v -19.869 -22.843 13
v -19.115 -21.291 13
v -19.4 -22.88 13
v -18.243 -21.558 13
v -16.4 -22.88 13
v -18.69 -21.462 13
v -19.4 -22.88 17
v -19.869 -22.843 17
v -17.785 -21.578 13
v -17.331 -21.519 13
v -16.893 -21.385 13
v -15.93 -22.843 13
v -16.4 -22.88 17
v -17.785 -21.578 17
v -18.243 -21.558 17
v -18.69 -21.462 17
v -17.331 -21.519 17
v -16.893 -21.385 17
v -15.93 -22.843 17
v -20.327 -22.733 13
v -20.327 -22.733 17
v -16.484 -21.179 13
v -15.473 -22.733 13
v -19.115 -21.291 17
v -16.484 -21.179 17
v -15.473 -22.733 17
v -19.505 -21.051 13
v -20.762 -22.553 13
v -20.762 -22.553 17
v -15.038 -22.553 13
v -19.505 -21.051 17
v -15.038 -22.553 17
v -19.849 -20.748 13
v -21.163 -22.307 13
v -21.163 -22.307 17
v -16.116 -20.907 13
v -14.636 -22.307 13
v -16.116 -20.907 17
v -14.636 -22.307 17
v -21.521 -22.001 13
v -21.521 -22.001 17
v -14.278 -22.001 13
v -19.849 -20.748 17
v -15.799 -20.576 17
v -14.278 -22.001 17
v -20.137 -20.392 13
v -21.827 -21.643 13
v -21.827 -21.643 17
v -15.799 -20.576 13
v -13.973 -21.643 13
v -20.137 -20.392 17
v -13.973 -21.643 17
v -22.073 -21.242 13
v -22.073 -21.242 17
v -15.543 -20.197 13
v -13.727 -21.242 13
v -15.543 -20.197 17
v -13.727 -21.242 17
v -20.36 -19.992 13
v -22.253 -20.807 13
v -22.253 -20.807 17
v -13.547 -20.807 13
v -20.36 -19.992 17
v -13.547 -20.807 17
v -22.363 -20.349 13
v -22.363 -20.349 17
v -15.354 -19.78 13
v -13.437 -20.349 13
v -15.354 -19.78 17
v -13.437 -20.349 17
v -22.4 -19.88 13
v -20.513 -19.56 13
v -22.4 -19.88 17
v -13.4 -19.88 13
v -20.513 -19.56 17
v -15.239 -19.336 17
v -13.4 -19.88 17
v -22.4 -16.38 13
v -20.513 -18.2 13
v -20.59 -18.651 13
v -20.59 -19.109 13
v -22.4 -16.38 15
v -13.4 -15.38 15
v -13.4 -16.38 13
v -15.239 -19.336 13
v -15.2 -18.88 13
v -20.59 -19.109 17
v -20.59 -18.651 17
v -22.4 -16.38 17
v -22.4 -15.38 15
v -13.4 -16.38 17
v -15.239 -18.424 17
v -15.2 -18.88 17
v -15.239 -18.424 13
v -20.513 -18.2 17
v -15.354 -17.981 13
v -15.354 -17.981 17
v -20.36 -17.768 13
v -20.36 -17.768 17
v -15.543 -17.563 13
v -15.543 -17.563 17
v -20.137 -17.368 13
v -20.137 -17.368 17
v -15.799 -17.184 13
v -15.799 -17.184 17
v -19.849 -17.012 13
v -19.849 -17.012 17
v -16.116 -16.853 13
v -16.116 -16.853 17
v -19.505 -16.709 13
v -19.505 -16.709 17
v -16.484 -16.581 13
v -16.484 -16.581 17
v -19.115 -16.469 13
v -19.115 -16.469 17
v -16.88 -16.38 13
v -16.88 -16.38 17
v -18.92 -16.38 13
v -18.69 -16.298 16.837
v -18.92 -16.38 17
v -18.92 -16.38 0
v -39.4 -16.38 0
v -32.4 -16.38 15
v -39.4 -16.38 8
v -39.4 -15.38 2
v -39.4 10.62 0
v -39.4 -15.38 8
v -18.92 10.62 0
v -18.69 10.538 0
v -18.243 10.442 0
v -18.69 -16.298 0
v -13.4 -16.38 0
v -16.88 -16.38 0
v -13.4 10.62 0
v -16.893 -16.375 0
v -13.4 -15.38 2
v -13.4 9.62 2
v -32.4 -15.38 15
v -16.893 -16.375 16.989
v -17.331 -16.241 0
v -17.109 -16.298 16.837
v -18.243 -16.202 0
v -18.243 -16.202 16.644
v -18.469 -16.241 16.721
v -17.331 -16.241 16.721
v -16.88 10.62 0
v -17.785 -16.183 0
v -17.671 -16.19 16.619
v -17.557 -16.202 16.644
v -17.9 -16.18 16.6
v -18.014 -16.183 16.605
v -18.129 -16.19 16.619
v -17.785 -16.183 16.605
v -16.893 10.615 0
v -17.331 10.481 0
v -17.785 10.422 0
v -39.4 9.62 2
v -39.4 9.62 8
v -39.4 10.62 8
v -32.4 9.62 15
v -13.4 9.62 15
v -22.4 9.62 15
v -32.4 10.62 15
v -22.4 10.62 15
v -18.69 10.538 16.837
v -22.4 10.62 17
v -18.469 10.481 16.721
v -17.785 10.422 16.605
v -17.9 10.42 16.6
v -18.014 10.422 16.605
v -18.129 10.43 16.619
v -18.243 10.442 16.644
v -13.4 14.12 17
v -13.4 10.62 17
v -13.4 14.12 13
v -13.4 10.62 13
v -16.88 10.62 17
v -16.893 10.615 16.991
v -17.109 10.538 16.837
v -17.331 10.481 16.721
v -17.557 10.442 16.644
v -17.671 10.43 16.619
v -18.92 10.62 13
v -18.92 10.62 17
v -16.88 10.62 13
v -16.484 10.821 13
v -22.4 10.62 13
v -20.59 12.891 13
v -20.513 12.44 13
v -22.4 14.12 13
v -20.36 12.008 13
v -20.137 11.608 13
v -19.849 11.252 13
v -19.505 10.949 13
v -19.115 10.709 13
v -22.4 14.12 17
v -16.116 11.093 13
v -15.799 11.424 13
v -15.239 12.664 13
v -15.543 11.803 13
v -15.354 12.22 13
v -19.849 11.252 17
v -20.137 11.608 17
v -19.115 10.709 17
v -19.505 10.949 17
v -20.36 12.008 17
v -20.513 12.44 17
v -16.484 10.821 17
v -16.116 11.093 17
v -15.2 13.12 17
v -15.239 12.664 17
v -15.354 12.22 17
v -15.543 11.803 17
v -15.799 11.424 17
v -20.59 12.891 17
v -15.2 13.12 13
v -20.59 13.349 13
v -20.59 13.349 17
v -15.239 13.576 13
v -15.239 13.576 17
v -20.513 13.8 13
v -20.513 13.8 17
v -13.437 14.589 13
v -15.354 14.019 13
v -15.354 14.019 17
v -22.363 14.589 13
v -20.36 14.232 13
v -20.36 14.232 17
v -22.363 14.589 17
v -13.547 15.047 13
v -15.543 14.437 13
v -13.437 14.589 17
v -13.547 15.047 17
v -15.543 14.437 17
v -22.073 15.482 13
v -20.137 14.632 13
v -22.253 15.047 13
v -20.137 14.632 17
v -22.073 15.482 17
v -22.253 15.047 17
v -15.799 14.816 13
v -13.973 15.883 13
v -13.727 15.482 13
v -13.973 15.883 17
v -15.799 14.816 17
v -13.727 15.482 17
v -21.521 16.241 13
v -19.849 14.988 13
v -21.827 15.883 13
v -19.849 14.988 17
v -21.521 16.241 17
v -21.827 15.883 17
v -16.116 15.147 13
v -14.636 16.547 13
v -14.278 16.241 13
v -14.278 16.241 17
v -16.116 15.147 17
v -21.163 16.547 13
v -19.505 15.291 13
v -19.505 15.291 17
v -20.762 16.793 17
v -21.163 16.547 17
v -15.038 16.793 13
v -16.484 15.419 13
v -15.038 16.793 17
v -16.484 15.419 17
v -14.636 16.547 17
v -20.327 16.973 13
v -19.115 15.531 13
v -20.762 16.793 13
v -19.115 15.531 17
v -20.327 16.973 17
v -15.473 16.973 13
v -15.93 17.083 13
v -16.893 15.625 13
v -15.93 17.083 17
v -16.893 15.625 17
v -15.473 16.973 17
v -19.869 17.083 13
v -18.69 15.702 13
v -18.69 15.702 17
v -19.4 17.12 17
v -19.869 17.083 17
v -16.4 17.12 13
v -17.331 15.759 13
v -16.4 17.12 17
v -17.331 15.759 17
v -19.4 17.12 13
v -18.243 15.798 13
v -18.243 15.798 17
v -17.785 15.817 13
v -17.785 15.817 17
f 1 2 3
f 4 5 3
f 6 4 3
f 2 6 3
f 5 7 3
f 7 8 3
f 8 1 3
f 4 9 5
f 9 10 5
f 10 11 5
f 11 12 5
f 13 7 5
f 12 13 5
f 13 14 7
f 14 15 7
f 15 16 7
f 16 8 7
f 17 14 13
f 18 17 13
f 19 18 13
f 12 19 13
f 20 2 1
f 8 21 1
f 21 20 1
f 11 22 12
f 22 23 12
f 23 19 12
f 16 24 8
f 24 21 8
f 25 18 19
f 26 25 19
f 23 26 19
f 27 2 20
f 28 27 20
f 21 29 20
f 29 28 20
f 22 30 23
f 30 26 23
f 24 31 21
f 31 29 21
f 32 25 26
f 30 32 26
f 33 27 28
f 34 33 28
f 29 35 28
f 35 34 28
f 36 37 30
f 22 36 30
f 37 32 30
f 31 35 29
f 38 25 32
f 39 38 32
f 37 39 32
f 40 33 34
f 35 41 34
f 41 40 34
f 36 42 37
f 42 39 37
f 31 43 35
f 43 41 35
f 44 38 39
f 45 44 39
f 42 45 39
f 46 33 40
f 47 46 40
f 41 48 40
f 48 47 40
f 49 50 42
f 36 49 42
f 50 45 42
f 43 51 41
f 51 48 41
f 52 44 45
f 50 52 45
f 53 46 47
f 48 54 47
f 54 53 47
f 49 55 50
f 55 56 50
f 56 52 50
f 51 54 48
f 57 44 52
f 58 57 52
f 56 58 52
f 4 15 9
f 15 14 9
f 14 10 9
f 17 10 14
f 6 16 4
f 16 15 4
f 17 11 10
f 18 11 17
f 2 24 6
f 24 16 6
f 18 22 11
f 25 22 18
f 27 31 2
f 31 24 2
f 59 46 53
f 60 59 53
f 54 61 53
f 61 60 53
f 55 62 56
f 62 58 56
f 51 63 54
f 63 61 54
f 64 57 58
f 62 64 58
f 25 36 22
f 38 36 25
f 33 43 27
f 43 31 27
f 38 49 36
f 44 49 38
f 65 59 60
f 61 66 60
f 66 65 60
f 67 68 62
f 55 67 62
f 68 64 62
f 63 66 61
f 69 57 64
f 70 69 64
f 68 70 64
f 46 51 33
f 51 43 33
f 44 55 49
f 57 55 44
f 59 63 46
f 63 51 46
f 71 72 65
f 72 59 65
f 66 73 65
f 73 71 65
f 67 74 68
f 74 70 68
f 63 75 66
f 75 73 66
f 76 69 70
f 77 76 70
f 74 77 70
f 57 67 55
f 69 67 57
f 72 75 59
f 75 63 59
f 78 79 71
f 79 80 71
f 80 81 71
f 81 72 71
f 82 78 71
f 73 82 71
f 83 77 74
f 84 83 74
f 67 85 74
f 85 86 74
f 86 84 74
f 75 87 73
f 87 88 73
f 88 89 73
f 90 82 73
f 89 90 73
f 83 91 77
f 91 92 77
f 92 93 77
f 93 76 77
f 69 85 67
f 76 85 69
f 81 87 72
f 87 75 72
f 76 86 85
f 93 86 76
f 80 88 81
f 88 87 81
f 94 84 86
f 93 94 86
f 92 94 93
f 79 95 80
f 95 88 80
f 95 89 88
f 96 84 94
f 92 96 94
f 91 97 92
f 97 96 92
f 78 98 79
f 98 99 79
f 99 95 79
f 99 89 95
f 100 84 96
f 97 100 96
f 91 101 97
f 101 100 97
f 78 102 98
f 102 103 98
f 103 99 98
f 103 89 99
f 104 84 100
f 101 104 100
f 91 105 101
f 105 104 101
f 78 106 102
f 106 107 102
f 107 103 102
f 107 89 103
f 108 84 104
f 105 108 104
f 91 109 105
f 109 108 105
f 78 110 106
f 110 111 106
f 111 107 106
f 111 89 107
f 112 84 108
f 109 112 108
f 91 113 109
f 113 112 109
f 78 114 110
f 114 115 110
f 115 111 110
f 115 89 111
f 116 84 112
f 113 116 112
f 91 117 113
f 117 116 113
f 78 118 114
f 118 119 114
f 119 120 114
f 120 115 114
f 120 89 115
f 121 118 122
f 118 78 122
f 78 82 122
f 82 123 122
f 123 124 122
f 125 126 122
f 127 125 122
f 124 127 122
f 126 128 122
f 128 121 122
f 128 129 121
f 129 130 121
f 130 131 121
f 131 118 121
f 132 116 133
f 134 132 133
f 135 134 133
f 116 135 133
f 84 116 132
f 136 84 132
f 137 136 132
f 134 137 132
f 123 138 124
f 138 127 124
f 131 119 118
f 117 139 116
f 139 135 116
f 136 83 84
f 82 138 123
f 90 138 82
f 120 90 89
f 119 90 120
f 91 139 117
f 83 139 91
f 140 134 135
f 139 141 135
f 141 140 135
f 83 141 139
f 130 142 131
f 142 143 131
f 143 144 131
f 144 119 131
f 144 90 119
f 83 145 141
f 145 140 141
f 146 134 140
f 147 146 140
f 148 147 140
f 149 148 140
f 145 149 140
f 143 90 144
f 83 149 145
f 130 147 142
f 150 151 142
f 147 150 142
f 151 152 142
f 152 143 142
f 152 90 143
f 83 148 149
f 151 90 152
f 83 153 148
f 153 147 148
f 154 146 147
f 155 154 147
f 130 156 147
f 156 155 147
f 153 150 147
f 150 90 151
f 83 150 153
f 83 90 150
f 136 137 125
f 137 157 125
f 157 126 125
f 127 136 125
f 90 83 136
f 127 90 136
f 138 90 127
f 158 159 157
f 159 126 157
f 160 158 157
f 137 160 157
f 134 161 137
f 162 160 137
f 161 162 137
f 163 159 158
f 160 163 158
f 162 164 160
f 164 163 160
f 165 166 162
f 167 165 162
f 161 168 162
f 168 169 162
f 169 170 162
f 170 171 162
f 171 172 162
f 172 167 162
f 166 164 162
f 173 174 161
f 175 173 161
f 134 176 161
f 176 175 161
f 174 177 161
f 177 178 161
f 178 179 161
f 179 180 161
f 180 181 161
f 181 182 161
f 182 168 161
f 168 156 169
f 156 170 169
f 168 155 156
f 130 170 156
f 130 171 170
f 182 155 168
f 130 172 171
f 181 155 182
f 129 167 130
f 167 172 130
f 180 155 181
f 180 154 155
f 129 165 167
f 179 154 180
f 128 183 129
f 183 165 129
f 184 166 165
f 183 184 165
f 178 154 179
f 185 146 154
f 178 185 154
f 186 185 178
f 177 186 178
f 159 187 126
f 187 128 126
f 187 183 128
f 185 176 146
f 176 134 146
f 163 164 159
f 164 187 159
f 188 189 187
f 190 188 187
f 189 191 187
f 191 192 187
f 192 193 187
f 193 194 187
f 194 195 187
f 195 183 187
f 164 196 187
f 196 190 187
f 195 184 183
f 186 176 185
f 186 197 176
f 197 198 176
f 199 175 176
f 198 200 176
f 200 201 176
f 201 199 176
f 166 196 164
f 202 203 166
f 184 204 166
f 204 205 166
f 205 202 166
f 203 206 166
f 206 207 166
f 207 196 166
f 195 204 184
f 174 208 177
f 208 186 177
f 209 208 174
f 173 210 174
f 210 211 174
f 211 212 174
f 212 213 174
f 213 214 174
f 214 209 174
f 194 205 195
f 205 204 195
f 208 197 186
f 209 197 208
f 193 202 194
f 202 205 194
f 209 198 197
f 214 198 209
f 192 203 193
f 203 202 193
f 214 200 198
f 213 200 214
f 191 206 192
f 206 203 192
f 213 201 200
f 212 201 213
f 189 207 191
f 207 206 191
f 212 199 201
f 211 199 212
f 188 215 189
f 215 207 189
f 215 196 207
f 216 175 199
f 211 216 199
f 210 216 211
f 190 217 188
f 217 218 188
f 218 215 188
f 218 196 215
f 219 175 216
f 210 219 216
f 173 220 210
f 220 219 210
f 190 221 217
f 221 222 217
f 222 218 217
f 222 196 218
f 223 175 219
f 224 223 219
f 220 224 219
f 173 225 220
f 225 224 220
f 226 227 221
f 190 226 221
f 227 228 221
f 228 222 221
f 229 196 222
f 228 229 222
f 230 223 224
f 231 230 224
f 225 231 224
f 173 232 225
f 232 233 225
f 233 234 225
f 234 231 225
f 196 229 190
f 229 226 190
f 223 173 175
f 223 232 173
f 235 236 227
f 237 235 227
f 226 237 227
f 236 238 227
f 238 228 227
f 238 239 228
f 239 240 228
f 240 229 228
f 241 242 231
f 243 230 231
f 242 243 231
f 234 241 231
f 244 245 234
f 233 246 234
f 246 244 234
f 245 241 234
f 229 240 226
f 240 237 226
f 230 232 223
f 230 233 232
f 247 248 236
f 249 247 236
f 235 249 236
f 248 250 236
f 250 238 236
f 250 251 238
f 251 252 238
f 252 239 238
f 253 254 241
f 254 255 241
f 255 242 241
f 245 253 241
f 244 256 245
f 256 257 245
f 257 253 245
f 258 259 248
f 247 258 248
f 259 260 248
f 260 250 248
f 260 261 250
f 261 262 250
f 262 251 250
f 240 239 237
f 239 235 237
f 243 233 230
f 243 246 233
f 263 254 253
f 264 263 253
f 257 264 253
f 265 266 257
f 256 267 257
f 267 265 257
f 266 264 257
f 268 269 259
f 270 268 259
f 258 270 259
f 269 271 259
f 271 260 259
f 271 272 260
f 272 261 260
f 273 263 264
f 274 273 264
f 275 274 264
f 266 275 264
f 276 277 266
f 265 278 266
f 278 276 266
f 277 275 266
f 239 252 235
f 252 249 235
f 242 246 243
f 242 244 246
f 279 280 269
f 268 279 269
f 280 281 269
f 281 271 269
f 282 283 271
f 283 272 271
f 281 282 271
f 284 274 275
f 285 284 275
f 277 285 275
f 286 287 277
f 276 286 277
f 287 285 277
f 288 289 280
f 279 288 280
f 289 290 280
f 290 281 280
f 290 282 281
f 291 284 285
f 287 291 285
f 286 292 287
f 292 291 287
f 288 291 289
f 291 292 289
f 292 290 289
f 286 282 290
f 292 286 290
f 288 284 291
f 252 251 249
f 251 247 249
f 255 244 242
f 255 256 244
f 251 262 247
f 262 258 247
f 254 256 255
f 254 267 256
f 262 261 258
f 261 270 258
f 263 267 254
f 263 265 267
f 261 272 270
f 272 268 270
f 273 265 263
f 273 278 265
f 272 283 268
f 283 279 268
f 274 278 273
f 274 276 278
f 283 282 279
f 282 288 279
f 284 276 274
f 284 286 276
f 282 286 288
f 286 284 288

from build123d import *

# Parameters (mm, degrees)
CROQUIS1_W              = 26
CROQUIS1_H              = 27
SALIENTE_EXTRUIR1_DEPTH = 2
CROQUIS2_W              = 26
CROQUIS2_H              = 1
SALIENTE_EXTRUIR2_DEPTH = 13
SALIENTE_EXTRUIR3_DEPTH = 9
CROQUIS5_R              = 2.7
CORTAR_EXTRUIR1_DEPTH   = 17
REDONDEO1_R             = 3
CORTAR_EXTRUIR2_START   = -27
CORTAR_EXTRUIR2_DEPTH   = 27


with BuildPart() as part:
    # Croquis1 → Saliente-Extruir1 (new body)
    with BuildSketch(Plane.XY):
        with Locations((-26.399771714, -2.880068531)):
            Rectangle(CROQUIS1_W, CROQUIS1_H)
    extrude(amount=SALIENTE_EXTRUIR1_DEPTH)

    # Croquis2 → Saliente-Extruir2 (add)
    with BuildSketch(Plane.XY.offset(2)):
        with Locations((-26.399771714, 10.119931469)):
            Rectangle(CROQUIS2_W, CROQUIS2_H)
        with Locations((-26.399771714, -15.880068531)):
            Rectangle(CROQUIS2_W, CROQUIS2_H)
    extrude(amount=SALIENTE_EXTRUIR2_DEPTH)

    # Croquis3 → Saliente-Extruir3 (add)
    with BuildSketch(Plane(origin=(-13.399771714, 0, 0), x_dir=(0, 0, -1), z_dir=(1, 0, 0))):
        Polygon((-17, -16.380068531), (-15, -15.380068531), (-15, -16.380068531), (-13, -16.380068531), (-13, -22.880068531), (-15, -22.880068531), (-17, -22.880068531), align=None)
        Polygon((-15, 10.619931469), (-13, 10.619931469), (-13, 17.119931469), (-15, 17.119931469), (-17, 17.119931469), (-17, 10.619931469), (-15, 9.619931469), align=None)
    extrude(amount=-SALIENTE_EXTRUIR3_DEPTH)

    # Croquis5 → Cortar-Extruir1 (cut)
    with BuildSketch(Plane.XY.offset(17)):
        with Locations(Location((-17.899771714, -18.880068531, 0), (0, 0, 67.808393434))):
            Circle(CROQUIS5_R)
        with Locations(Location((-17.899771714, 13.119931469, 0), (0, 0, 292.191606566))):
            Circle(CROQUIS5_R)
    extrude(amount=-CORTAR_EXTRUIR1_DEPTH, mode=Mode.SUBTRACT)

    # Redondeo1
    redondeo1_edges = [part.edges().sort_by_distance(p)[0] for p in [
        (-22.399771714, -22.880068531, 15),
        (-13.399771714, -22.880068531, 15),
        (-22.399771714, 17.119931469, 15),
        (-13.399771714, 17.119931469, 15),
    ]]
    fillet(redondeo1_edges, radius=REDONDEO1_R)

    # Croquis6 → Cortar-Extruir2 (cut)
    with BuildSketch(Plane.XZ.offset(16.380068531).offset(CORTAR_EXTRUIR2_START)):
        Polygon((-39.399771714, 15), (-39.399771714, 8), (-32.399771714, 15), align=None)
    extrude(amount=CORTAR_EXTRUIR2_DEPTH, mode=Mode.SUBTRACT)


solid = part.part
